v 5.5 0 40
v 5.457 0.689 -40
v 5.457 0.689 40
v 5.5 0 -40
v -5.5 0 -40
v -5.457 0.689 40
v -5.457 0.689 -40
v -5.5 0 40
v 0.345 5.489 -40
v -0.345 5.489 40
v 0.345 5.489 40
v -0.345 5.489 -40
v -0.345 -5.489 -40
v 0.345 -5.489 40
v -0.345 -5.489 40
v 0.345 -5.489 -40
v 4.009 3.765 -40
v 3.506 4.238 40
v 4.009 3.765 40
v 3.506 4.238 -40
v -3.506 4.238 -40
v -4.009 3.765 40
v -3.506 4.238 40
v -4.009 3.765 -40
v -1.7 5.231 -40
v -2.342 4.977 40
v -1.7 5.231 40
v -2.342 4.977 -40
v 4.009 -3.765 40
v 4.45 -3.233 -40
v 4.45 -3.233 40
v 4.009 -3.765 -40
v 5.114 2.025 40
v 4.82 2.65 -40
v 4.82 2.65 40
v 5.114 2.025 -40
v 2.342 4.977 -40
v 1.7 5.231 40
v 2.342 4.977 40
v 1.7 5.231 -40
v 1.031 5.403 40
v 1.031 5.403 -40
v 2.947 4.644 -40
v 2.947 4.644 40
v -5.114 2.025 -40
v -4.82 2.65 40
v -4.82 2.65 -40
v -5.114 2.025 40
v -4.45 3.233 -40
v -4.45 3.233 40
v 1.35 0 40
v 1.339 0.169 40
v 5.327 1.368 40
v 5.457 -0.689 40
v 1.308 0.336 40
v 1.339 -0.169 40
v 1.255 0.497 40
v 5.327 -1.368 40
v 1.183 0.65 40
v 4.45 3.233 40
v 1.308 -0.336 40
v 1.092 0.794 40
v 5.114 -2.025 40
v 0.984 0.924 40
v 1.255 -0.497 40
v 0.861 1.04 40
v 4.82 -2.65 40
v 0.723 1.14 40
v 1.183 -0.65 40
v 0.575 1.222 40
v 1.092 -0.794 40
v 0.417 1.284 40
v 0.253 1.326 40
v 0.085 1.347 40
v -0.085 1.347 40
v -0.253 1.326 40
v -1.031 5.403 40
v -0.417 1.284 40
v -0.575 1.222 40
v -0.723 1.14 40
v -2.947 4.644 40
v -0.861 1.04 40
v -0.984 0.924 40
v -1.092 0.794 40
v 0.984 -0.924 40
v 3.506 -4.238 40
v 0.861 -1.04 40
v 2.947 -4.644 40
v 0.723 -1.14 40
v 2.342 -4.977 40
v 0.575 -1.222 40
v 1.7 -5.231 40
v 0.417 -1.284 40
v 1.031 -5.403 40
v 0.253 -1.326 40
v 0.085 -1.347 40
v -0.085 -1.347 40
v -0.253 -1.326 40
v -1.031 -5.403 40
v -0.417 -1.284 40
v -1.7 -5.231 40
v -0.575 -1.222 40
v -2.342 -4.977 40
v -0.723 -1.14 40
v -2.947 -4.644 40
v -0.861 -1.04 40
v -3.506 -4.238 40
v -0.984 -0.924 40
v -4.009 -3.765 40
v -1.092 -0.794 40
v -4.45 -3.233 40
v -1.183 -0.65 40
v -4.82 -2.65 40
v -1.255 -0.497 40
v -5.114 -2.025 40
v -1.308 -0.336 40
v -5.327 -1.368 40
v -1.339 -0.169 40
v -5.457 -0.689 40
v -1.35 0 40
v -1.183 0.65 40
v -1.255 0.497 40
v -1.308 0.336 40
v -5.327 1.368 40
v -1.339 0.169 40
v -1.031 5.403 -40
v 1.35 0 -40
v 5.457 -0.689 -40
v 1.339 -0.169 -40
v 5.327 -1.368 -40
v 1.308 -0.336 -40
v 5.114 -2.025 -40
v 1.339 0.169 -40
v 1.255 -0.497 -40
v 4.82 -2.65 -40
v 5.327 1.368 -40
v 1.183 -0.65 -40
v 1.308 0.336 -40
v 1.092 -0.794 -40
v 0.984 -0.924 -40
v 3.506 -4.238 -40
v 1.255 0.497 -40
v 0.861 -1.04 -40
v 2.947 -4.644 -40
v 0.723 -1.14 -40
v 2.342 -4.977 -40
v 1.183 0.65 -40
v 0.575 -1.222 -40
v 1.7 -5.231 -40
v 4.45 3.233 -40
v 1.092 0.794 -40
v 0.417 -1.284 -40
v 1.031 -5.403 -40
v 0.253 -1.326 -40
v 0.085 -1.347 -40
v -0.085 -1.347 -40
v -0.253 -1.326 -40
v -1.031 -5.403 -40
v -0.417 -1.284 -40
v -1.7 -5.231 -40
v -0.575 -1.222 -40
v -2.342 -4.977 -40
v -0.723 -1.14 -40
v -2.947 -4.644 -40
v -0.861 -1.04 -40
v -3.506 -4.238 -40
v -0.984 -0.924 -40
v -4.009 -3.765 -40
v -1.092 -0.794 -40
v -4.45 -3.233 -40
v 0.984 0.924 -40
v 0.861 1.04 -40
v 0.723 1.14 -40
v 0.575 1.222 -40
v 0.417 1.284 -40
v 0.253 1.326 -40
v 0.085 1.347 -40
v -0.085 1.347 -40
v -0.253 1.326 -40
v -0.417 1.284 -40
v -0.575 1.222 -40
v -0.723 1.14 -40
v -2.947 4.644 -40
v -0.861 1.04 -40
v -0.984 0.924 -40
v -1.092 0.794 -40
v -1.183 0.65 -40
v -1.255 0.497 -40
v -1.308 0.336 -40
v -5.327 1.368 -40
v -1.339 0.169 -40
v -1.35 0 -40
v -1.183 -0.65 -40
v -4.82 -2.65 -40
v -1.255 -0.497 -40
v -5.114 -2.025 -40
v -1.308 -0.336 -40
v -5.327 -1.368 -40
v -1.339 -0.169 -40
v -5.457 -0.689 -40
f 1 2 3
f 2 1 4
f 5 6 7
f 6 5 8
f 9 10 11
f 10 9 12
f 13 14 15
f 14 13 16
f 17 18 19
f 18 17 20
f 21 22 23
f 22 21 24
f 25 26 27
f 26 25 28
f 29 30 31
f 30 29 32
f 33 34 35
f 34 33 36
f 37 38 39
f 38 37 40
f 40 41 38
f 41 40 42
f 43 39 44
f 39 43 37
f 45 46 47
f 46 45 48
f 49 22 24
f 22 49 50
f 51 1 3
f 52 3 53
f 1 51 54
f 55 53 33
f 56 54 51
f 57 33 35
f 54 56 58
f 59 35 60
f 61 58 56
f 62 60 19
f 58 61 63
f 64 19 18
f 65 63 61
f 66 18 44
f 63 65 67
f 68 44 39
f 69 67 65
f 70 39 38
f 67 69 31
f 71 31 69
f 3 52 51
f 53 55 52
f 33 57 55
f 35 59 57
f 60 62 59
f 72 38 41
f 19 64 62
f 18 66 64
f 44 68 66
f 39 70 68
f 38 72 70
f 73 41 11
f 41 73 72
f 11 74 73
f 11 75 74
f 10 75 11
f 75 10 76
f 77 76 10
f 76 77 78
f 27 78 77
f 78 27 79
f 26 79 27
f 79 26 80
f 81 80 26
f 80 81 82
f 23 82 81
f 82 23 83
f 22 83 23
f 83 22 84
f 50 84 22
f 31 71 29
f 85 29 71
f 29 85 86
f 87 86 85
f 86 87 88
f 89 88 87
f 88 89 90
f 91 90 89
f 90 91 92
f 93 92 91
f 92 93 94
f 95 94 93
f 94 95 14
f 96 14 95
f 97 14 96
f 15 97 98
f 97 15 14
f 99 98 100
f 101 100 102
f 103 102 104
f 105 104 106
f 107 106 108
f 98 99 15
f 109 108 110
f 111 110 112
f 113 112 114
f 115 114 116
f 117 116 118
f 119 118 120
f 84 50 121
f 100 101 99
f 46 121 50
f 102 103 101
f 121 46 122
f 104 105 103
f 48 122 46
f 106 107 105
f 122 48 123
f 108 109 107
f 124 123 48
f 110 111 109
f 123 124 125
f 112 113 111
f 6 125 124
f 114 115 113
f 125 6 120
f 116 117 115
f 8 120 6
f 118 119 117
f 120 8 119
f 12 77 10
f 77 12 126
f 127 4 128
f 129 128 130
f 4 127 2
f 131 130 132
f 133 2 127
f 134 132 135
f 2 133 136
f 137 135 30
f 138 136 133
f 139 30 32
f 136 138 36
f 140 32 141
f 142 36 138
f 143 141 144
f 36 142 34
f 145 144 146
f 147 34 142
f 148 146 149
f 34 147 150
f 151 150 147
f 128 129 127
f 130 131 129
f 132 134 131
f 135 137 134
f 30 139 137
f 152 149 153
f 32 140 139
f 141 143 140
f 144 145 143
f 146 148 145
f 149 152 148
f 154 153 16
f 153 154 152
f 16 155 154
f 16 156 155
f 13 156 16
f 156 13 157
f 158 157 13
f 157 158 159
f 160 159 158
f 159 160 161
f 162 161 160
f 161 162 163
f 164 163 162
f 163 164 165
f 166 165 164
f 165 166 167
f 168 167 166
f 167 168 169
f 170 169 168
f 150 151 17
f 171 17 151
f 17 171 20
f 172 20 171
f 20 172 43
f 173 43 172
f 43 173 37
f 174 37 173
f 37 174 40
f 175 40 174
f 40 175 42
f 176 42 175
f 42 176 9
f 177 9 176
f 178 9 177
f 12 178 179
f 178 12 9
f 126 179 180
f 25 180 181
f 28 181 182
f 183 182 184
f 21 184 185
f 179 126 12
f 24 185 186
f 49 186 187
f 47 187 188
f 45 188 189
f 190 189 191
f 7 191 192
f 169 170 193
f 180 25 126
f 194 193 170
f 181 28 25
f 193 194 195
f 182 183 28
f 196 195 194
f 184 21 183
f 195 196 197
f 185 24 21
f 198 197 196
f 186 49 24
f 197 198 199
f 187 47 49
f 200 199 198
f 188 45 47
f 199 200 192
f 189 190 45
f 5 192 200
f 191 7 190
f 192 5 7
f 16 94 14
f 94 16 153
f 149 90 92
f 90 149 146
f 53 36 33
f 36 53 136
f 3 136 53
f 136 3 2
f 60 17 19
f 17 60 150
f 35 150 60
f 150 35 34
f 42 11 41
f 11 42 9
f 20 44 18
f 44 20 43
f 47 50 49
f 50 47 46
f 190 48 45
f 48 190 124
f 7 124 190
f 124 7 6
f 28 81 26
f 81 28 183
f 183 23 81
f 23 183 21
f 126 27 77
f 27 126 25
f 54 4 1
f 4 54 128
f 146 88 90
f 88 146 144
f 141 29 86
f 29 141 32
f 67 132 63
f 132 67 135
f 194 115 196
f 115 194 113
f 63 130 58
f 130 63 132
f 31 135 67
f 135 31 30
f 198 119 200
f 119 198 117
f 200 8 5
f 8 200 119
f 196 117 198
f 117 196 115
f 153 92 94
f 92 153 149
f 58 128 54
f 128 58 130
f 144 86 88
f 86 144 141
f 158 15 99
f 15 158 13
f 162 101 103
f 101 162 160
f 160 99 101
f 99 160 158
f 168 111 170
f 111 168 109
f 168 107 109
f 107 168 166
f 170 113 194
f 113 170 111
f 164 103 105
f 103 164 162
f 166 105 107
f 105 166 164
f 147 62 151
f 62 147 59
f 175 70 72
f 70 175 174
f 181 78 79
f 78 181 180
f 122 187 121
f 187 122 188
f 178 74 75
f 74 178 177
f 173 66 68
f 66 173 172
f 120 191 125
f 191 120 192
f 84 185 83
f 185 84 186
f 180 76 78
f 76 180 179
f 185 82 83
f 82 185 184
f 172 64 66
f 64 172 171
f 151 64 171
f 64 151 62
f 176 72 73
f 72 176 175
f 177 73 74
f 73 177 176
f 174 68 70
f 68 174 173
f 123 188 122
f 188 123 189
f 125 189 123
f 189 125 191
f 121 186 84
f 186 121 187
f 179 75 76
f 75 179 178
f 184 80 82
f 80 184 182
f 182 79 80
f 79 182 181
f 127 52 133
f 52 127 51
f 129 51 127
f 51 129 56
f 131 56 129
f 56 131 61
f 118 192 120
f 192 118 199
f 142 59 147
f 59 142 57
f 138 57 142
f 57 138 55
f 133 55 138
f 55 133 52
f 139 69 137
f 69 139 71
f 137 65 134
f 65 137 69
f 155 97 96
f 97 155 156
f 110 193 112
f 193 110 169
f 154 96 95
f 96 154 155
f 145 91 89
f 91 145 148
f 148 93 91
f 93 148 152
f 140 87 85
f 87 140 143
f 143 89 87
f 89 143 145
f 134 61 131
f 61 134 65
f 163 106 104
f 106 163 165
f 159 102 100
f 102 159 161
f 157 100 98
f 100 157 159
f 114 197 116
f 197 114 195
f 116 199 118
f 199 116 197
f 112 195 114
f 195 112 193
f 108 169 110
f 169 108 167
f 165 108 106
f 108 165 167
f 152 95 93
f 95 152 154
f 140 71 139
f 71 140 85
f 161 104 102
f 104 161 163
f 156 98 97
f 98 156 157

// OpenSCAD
$fn = 50;


difference() {
	union() {
		translate(v = [0, 0, -40.0000000000]) {
			cylinder(h = 80, r = 5.5000000000);
		}
	}
	union() {
		translate(v = [0, 0, -100.0000000000]) {
			cylinder(h = 200, r = 1.3500000000);
		}
	}
}
